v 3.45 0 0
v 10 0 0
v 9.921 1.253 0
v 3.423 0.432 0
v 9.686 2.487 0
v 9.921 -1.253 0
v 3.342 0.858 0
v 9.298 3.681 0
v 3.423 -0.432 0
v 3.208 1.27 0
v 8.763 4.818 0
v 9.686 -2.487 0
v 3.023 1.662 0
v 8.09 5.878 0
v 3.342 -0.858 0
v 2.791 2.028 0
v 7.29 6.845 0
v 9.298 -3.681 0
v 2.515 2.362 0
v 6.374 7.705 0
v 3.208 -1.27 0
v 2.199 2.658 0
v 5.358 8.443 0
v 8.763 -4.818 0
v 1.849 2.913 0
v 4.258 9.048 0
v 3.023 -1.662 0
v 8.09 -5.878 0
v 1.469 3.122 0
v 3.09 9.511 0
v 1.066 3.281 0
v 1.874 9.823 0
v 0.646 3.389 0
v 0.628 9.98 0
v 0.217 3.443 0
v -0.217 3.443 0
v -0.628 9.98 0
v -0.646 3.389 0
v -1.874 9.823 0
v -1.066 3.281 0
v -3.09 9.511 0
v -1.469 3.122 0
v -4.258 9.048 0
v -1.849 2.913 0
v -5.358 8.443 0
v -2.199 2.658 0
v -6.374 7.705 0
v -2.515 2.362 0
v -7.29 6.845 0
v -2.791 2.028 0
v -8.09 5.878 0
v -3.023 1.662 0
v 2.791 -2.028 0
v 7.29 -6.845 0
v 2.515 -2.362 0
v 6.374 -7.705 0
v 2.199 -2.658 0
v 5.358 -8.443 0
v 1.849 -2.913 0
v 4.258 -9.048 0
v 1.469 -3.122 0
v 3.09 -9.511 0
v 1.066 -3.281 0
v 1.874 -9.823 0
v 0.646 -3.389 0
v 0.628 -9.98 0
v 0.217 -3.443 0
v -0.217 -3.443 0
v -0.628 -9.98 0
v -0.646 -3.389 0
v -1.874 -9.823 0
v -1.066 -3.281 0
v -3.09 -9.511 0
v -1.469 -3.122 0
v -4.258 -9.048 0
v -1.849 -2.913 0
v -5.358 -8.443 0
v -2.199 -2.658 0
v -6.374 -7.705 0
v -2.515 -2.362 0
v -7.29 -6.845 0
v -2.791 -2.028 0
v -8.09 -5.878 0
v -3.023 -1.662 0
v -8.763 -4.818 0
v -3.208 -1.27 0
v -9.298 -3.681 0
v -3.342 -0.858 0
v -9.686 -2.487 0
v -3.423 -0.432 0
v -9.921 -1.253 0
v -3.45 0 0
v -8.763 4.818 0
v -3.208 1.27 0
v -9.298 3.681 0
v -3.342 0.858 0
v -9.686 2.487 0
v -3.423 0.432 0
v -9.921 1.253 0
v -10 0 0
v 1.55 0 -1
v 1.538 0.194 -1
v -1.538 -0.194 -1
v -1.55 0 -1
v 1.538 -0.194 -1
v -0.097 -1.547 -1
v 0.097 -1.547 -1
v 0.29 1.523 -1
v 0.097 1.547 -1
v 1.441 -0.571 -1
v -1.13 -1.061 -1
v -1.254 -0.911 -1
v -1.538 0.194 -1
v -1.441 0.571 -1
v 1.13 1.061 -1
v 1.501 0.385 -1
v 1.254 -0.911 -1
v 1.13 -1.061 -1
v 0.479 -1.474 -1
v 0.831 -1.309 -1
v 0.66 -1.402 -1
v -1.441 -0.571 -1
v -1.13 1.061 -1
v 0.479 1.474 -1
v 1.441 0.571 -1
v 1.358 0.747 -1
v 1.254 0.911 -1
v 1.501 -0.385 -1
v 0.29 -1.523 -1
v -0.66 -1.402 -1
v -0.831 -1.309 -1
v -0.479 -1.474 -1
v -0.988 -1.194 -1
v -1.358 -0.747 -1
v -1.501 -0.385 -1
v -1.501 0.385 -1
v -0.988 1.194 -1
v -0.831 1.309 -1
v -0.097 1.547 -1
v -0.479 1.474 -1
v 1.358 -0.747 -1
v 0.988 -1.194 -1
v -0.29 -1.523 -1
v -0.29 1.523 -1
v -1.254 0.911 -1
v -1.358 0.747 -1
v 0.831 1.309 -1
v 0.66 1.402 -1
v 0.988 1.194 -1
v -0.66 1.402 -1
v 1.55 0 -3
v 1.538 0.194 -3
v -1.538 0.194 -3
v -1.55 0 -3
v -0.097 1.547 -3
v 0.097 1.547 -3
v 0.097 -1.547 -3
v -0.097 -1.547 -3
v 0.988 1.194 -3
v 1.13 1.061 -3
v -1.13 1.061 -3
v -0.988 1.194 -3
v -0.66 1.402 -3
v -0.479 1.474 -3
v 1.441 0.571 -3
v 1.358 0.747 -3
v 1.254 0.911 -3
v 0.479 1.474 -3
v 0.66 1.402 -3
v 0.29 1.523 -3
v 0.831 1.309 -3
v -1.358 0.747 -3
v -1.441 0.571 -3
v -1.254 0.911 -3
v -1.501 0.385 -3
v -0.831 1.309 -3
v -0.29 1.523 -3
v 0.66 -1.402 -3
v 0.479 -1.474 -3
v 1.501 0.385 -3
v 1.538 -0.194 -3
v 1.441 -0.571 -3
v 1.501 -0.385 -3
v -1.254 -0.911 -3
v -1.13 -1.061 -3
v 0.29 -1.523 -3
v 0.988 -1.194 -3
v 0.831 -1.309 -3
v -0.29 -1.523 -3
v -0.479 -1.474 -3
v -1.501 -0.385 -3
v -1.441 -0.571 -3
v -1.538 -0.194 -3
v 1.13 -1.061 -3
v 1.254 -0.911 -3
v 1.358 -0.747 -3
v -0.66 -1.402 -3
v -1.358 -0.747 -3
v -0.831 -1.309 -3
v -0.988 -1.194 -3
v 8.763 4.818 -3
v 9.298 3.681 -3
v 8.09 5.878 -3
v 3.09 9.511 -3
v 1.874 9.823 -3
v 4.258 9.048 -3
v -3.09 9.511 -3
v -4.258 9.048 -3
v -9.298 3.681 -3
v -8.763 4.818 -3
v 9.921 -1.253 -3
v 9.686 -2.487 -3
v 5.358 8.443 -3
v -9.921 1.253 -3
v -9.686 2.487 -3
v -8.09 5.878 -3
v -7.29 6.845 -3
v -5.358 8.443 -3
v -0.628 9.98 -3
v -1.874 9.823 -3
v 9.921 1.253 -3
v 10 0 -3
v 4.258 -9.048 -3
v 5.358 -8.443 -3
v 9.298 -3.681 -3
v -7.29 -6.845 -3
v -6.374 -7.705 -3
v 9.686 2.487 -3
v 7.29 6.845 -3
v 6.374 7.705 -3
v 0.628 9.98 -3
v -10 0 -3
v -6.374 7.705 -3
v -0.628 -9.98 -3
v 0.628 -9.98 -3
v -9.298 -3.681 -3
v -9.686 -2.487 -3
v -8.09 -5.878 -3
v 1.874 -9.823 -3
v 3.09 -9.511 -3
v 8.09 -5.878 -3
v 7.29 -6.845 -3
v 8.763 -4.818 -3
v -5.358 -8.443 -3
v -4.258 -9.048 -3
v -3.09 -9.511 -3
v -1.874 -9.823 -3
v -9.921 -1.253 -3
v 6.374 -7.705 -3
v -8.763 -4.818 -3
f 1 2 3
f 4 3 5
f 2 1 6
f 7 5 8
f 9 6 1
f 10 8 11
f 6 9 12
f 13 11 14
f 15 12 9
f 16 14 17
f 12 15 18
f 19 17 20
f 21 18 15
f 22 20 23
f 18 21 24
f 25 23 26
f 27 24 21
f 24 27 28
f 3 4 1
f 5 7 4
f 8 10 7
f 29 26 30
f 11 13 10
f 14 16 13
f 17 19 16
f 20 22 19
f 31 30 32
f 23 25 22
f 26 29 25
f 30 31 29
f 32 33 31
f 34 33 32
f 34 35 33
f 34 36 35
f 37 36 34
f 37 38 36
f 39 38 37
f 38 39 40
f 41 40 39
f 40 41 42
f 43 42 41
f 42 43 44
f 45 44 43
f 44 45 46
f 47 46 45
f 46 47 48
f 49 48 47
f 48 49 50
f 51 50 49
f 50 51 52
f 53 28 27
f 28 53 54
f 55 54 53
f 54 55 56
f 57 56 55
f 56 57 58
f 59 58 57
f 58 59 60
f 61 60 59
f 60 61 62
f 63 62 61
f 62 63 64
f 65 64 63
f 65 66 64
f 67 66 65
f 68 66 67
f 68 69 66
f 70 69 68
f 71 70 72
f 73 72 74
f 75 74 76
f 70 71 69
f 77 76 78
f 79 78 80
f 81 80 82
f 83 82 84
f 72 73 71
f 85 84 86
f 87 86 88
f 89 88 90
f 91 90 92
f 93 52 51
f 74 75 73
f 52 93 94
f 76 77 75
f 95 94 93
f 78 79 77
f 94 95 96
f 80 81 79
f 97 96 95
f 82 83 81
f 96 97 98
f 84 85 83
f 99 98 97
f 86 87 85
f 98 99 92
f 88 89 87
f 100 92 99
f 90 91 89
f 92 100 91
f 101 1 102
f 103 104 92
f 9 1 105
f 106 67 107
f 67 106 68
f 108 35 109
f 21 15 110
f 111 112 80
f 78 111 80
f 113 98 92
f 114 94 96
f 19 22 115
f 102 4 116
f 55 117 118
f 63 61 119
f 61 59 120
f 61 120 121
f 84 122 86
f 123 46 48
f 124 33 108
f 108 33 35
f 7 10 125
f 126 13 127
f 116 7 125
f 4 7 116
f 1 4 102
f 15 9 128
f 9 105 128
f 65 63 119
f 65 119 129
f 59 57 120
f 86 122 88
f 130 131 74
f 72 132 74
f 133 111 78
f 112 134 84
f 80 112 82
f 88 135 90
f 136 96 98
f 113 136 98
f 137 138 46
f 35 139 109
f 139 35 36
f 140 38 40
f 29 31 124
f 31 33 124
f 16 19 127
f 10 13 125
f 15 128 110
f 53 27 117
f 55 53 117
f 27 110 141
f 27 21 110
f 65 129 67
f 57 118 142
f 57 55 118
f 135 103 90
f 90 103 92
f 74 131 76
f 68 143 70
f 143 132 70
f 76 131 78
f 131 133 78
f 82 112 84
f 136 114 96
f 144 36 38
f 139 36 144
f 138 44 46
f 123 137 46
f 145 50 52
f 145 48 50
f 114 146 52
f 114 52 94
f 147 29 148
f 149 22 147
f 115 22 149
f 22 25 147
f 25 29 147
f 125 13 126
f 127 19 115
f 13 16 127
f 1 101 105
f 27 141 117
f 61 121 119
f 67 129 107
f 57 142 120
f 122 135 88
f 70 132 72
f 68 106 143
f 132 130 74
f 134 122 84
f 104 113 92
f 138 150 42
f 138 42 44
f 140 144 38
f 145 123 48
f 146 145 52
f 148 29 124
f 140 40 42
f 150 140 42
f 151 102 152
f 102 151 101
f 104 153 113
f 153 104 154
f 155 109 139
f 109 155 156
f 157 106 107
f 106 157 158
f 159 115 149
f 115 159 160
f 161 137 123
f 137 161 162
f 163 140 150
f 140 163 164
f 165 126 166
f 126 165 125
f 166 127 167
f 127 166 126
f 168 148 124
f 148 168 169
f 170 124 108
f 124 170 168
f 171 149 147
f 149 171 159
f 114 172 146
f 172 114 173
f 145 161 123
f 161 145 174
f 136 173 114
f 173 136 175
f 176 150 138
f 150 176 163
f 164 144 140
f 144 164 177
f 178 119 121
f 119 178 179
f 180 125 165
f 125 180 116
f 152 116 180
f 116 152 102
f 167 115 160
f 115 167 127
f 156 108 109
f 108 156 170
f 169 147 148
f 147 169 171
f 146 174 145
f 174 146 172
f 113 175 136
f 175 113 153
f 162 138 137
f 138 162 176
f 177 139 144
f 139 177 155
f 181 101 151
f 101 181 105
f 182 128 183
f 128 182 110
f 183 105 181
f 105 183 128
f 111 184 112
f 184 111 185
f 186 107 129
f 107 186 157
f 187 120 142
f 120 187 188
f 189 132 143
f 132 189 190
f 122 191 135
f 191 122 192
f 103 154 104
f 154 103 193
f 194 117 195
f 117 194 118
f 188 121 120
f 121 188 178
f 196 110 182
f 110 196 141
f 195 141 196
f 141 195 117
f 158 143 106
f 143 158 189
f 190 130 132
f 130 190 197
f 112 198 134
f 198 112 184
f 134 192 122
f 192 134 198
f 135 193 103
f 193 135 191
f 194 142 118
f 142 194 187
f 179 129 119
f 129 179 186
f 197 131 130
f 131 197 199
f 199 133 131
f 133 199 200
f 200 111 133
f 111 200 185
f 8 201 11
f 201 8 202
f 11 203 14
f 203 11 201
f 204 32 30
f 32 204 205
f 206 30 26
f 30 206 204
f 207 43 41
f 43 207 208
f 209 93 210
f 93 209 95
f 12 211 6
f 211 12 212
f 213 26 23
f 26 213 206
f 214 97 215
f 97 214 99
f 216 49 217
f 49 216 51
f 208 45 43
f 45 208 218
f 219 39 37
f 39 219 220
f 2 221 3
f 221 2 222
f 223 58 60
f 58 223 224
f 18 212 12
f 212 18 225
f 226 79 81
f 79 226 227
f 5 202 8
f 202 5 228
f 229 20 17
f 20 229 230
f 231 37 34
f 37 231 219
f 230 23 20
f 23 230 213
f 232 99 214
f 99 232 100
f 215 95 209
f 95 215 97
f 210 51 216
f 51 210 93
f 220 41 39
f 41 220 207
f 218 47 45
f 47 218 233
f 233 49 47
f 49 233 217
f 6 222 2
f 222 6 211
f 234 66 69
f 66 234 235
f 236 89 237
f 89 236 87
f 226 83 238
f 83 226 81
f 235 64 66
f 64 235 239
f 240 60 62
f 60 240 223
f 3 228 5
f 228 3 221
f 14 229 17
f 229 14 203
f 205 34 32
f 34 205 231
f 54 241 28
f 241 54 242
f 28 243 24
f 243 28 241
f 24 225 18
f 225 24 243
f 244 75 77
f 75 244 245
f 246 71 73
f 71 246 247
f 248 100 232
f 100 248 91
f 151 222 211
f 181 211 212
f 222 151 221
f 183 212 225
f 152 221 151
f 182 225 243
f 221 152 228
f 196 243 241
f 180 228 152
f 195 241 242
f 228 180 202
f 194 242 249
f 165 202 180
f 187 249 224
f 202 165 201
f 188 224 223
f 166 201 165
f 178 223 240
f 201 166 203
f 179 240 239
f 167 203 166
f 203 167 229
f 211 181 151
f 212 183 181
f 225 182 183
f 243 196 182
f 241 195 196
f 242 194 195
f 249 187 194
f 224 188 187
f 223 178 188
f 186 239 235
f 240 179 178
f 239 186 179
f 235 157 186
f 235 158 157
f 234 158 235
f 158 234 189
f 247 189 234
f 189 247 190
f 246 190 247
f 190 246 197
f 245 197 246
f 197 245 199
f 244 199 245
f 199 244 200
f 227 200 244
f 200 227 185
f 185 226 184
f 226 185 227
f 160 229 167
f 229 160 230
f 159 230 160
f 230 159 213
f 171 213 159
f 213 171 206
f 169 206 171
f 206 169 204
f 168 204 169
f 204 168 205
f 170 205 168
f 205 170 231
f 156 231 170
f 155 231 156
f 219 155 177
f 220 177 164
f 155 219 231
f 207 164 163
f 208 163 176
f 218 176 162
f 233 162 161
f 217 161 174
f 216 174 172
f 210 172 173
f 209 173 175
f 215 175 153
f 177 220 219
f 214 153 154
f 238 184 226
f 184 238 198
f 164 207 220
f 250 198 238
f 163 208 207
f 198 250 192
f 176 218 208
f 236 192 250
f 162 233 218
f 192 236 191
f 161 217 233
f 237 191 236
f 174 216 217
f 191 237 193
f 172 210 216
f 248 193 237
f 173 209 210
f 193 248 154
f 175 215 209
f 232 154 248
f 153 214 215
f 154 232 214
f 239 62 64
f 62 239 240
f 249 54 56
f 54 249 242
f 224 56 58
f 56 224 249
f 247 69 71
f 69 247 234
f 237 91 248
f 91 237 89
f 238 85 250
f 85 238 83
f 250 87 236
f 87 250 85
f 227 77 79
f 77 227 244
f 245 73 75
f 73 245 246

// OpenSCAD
$fn = 50;


difference() {
	union() {
		translate(v = [0, 0, -3.0000000000]) {
			cylinder(h = 3, r = 10.0000000000);
		}
	}
	union() {
		translate(v = [0, 0, 0]) {
			rotate(a = [0, 0, 0]) {
				difference() {
					union() {
						translate(v = [0, 0, -6.0000000000]) {
							cylinder(h = 6, r = 1.2500000000);
						}
						translate(v = [0, 0, -1.0000000000]) {
							cylinder(h = 1.0000000000, r1 = 1.5500000000, r2 = 3.4500000000);
						}
						translate(v = [0, 0, -6.0000000000]) {
							cylinder(h = 6, r = 1.5500000000);
						}
						translate(v = [0, 0, -6.0000000000]) {
							cylinder(h = 6, r = 1.2500000000);
						}
					}
					union();
				}
			}
		}
	}
}
